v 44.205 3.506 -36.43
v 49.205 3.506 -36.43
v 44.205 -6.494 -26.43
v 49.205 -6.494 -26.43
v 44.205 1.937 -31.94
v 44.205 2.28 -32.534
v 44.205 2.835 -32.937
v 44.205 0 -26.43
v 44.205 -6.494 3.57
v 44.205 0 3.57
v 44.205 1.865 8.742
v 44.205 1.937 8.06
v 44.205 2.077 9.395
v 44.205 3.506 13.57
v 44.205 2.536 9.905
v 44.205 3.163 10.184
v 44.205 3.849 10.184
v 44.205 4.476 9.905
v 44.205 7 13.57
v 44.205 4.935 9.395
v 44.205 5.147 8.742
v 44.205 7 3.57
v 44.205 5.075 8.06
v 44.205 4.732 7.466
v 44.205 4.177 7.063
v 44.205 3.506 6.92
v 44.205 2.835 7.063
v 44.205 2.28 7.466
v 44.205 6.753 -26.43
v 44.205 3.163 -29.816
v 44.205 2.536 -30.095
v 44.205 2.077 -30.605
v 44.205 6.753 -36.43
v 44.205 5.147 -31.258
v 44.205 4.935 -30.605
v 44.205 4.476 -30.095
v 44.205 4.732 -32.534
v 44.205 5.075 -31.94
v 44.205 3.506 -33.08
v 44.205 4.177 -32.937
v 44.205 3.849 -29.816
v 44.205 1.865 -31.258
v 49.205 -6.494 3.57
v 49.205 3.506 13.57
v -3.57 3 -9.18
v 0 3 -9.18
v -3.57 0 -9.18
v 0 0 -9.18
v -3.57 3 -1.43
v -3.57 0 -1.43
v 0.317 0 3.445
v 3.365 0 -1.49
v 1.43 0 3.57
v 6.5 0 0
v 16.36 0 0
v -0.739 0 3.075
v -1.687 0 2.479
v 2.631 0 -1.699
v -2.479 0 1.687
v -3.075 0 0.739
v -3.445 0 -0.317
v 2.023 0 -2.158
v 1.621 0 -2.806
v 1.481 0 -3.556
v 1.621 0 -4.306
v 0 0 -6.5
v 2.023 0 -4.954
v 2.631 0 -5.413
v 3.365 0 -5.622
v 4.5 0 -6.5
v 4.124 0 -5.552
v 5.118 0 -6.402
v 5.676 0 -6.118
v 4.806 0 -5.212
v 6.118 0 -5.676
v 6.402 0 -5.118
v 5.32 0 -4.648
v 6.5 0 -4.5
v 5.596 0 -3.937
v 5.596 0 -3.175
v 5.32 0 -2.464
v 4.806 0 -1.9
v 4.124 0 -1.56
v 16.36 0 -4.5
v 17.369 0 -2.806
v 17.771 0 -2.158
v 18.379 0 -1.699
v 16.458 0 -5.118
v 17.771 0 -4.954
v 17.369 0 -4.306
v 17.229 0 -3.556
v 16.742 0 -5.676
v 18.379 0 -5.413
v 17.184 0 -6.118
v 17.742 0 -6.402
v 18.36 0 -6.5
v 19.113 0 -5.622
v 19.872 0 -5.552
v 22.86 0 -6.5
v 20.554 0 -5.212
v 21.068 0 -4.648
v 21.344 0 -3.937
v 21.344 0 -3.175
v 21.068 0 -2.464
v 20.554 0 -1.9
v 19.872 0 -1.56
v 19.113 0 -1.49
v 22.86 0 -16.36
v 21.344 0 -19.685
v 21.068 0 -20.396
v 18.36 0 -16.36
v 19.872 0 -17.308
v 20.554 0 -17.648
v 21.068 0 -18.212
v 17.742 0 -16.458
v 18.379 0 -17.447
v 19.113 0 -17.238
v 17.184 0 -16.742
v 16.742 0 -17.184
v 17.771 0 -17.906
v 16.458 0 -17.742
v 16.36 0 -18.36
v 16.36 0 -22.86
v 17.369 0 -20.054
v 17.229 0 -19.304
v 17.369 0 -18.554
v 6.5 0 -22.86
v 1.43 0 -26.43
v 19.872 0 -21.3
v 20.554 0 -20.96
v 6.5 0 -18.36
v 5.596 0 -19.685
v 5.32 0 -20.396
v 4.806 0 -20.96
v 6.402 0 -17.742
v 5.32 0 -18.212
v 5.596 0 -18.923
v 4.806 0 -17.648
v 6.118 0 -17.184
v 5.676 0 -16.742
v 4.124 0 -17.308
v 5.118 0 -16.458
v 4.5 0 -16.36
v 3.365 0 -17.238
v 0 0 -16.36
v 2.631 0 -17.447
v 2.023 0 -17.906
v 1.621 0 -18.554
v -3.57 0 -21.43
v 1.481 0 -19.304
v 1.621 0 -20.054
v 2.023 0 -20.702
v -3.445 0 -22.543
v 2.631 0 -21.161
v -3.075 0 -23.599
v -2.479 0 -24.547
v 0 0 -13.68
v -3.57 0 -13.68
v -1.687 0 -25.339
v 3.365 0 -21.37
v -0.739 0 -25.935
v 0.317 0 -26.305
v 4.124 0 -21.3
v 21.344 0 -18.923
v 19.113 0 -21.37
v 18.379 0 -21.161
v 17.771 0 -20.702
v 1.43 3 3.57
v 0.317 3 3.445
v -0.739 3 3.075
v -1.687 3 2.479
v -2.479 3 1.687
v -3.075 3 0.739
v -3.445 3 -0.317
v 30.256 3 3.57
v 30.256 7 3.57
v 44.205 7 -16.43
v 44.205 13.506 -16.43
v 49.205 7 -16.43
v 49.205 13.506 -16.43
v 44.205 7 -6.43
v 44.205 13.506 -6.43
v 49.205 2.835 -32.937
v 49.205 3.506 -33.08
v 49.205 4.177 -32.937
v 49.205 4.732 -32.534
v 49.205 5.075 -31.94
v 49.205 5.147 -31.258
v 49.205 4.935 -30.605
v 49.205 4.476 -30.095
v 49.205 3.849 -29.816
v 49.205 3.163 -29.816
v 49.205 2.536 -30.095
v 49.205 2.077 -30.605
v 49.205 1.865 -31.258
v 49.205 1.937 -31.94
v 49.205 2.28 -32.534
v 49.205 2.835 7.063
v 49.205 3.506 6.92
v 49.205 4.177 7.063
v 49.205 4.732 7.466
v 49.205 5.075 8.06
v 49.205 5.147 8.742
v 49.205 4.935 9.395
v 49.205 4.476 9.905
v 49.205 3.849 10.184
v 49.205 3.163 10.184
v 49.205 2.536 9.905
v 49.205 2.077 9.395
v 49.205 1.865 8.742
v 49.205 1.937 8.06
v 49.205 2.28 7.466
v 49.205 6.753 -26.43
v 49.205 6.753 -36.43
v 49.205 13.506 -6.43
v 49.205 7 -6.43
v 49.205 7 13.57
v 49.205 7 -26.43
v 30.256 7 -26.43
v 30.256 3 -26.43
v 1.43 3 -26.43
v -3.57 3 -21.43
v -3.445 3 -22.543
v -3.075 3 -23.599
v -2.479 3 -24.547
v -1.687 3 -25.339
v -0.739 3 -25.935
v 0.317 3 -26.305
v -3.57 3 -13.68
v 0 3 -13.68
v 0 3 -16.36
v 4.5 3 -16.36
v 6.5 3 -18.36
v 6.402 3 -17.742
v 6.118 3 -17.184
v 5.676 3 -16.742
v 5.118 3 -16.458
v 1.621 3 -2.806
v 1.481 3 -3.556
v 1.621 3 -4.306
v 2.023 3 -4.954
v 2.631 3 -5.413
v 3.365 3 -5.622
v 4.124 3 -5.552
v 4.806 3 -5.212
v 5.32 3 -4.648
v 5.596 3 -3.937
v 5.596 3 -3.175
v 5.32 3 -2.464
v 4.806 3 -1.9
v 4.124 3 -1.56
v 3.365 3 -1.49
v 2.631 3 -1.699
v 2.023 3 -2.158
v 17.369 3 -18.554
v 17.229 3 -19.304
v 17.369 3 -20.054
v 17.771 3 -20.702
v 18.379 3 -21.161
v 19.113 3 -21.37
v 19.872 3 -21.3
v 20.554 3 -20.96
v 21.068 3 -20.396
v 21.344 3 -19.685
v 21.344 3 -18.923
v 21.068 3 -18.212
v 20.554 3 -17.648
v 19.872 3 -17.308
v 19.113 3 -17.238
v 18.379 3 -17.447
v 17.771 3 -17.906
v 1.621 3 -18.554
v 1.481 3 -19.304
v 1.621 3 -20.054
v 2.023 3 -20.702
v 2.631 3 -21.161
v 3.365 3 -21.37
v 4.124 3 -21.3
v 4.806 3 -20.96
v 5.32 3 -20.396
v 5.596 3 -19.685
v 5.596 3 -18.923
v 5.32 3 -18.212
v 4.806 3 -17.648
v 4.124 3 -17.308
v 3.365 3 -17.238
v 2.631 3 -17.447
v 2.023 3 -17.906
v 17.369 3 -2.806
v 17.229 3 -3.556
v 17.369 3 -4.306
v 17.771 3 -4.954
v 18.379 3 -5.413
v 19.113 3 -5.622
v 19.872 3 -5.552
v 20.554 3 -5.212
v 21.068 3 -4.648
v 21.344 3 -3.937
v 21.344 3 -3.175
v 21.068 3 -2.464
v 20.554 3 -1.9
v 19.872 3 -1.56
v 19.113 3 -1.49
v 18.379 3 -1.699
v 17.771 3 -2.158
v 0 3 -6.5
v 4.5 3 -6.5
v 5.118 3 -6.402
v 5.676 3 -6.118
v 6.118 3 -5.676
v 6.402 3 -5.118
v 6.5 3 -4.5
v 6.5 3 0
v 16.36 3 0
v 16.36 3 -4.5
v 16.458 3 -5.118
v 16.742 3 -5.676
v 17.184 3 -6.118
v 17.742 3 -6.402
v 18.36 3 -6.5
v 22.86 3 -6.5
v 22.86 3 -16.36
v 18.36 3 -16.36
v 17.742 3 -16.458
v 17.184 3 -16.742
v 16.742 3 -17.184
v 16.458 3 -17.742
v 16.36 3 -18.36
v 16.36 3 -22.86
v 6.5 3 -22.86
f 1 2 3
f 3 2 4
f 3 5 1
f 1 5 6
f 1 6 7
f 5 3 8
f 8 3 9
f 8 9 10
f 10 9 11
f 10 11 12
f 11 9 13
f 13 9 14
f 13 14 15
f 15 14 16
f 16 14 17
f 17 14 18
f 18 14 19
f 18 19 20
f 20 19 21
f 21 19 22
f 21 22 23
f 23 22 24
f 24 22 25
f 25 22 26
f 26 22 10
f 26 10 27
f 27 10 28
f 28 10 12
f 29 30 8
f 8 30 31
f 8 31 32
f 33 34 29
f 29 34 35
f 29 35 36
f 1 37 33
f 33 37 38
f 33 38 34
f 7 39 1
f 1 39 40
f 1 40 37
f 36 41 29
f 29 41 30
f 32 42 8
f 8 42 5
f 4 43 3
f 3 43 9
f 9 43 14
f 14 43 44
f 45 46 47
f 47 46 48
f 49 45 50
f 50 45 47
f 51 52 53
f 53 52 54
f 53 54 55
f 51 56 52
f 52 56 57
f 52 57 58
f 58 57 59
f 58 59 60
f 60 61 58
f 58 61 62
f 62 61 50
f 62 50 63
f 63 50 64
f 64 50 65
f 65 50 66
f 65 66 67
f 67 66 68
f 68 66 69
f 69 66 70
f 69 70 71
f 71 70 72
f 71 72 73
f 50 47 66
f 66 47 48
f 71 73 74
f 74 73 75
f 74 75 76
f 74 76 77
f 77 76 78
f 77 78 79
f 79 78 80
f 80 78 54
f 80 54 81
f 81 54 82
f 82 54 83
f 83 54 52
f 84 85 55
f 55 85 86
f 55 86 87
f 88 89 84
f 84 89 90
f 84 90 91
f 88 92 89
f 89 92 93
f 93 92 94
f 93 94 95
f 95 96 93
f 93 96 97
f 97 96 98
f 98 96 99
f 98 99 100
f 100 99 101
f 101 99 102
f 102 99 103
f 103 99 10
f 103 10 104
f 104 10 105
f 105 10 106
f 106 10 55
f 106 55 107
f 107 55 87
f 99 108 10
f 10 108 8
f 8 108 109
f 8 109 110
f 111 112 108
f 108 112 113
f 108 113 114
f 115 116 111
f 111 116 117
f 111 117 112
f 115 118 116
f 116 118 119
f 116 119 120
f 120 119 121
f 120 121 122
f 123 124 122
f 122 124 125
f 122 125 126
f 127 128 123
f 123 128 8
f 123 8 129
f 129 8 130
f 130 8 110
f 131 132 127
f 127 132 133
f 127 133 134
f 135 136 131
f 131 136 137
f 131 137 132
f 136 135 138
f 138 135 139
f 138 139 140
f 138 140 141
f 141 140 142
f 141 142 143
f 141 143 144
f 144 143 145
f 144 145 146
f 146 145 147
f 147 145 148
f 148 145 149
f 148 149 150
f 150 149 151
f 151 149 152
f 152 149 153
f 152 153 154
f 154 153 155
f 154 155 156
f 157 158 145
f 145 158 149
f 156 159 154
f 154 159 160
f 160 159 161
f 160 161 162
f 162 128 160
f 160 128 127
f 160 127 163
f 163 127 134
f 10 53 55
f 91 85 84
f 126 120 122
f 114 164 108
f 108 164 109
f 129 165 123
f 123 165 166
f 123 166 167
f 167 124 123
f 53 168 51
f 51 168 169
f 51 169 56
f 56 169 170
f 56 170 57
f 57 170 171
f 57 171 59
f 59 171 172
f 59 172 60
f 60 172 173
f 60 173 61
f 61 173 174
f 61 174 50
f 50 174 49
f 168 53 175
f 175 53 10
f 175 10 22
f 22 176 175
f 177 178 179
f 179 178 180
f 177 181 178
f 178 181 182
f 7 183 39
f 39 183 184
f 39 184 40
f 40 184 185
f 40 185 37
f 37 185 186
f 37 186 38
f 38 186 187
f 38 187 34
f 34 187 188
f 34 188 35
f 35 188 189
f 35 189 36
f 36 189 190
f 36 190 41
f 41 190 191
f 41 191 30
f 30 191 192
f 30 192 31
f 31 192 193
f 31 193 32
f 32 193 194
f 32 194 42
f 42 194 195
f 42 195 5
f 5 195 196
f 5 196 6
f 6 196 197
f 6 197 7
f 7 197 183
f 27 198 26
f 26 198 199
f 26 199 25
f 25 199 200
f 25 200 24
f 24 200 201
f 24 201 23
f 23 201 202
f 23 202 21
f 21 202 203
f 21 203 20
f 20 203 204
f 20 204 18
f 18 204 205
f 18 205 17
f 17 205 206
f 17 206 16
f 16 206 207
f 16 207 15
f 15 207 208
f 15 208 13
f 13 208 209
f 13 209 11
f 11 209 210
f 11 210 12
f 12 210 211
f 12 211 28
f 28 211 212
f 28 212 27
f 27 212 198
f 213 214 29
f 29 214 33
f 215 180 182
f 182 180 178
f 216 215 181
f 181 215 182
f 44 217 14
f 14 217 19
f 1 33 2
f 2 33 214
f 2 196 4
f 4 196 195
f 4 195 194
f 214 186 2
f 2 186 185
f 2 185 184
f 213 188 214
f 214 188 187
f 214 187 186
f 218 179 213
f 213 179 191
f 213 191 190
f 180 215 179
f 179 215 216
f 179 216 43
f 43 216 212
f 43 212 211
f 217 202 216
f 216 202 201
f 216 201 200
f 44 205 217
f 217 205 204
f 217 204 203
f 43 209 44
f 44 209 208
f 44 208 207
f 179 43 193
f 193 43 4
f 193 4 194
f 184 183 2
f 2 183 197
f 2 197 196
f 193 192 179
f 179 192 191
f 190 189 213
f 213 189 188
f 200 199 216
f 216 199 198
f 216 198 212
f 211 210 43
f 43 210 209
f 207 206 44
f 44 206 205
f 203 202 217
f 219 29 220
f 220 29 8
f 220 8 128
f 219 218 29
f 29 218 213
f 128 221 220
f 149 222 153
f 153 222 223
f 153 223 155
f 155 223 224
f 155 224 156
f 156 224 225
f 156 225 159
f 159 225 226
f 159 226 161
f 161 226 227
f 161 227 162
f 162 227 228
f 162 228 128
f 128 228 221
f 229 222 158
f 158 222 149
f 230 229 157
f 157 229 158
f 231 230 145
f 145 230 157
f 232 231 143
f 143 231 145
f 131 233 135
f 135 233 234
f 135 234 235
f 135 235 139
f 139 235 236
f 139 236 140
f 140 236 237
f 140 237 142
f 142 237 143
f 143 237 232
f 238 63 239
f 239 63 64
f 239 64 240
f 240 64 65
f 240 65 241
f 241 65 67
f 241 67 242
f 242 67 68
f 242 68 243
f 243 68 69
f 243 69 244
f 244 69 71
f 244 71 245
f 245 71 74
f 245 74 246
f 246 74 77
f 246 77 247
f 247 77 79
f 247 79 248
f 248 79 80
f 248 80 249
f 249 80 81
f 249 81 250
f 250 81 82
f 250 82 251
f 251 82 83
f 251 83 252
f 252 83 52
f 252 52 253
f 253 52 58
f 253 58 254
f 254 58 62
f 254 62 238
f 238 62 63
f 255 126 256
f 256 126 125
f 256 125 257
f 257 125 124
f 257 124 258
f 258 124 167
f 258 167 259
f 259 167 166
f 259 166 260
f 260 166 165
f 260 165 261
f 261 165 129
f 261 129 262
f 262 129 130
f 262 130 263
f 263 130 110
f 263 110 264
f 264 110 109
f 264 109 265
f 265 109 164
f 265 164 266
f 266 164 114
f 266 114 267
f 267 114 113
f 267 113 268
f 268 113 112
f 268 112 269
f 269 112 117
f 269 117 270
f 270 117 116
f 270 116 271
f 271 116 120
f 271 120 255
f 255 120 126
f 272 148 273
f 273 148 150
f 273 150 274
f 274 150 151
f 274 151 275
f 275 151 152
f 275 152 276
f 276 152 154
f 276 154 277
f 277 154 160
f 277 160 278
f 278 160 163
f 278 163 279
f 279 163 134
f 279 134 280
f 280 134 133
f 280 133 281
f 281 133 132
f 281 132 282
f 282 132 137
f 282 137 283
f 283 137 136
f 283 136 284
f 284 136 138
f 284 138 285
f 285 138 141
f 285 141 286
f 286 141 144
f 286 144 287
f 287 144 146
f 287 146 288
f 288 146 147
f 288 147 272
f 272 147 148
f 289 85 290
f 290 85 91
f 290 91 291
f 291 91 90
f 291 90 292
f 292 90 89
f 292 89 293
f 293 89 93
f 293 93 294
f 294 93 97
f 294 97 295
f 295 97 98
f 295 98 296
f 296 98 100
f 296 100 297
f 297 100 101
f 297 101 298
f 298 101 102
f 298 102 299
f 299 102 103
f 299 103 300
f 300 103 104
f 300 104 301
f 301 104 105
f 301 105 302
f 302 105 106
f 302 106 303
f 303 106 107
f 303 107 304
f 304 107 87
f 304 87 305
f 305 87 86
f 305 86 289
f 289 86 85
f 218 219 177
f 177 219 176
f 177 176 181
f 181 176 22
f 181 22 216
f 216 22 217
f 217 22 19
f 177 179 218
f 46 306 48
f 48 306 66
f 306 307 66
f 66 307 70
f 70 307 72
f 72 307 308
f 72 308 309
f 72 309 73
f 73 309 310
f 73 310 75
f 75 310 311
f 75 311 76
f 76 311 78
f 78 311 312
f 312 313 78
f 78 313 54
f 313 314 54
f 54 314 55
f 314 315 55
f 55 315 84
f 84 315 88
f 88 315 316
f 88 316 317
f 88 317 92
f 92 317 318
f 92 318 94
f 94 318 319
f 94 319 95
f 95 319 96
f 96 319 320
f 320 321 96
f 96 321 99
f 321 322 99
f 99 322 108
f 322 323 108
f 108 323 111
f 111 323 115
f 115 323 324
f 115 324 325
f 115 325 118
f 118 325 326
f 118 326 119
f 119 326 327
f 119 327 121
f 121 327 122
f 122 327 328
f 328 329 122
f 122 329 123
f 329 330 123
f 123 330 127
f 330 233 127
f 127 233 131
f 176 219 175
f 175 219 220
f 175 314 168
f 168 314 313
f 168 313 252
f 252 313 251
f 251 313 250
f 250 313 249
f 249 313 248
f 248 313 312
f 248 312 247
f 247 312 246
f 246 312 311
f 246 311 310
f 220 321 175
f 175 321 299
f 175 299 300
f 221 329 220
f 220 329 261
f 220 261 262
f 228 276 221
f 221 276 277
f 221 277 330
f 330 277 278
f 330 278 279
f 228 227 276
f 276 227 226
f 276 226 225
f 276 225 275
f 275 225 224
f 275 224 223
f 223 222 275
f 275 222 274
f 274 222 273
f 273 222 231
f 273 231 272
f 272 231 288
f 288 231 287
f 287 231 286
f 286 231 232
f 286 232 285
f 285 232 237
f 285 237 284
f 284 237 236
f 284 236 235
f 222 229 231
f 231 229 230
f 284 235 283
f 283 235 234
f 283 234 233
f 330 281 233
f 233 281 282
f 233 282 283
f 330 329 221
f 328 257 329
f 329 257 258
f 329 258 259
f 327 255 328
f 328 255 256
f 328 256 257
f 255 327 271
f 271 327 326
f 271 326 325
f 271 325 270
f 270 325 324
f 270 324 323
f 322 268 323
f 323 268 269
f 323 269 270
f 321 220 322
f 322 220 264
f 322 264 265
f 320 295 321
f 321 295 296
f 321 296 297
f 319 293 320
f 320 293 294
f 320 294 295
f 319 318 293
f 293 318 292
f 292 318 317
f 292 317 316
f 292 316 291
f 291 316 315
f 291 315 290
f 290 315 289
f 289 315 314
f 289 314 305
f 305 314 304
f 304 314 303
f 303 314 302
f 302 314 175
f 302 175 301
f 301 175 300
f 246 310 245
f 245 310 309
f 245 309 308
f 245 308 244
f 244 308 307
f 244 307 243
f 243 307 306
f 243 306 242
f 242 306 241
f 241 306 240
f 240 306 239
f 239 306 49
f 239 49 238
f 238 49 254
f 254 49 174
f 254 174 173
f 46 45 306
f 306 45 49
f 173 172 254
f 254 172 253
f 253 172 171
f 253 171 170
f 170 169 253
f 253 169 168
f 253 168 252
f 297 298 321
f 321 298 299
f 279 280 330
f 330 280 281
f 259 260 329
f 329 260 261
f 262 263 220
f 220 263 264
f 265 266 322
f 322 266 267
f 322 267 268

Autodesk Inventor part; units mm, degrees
ref_plane "YZ Plane" through (0, 0, 0) normal (1, 0, 0) x (0, 1, 0)
ref_plane "XZ Plane" through (0, 0, 0) normal (0, 1, 0) x (-1, 0, 0)
ref_plane "XY Plane" through (0, 0, 0) normal (0, 0, 1) x (1, 0, 0)
sketch "Sketch1" plane through (0, 0, 0) normal (0, 1, 0) x (-1, 0, 0)
  line L0 (0, 0) -> (-22.86, 0)
  line L1 (-22.86, 0) -> (-22.86, -22.86)
  line L2 (-22.86, -22.86) -> (0, -22.86)
  line L3 (0, -22.86) -> (0, 0)
  line L4 (-22.86, -22.86) -> (-19.304, -22.86)
  line L5 (-19.304, -22.86) -> (-19.304, -19.304) construction
  line L6 (-19.304, -19.304) -> (-22.86, -19.304) construction
  line L7 (-22.86, -19.304) -> (-22.86, -22.86)
  line L8 (0, -22.86) -> (-3.556, -22.86)
  line L9 (-3.556, -22.86) -> (-3.556, -19.304) construction
  line L10 (-3.556, -19.304) -> (0, -19.304) construction
  line L11 (0, -19.304) -> (0, -22.86)
  line L12 (0, 0) -> (-3.556, 0)
  line L13 (-3.556, 0) -> (-3.556, -3.556) construction
  line L14 (-3.556, -3.556) -> (0, -3.556) construction
  line L15 (0, -3.556) -> (0, 0)
  line L16 (-22.86, 0) -> (-19.304, 0)
  line L17 (-19.304, 0) -> (-19.304, -3.556) construction
  line L18 (-19.304, -3.556) -> (-22.86, -3.556) construction
  line L19 (-22.86, -3.556) -> (-22.86, 0)
  circle A0 centre (-3.556, -19.304) radius 2.075
  circle A1 centre (-19.304, -19.304) radius 2.075
  circle A2 centre (-19.304, -3.556) radius 2.075
  circle A3 centre (-3.556, -3.556) radius 2.075
  line L20 (3.57, -26.43) -> (-26.43, -26.43)
  line L21 (-26.43, -26.43) -> (-26.43, 3.57)
  line L22 (-26.43, 3.57) -> (3.57, 3.57)
  line L23 (3.57, 3.57) -> (3.57, -26.43)
  line L24 (0, 0) -> (-6.5, 0)
  line L25 (-6.5, 0) -> (-6.5, -6.5)
  line L26 (-6.5, -6.5) -> (0, -6.5)
  line L27 (0, -6.5) -> (0, 0)
  line L28 (0, -22.86) -> (-6.5, -22.86)
  line L29 (-6.5, -22.86) -> (-6.5, -16.36)
  line L30 (-6.5, -16.36) -> (0, -16.36)
  line L31 (0, -16.36) -> (0, -22.86)
  line L32 (-22.86, -22.86) -> (-16.36, -22.86)
  line L33 (-16.36, -22.86) -> (-16.36, -16.36)
  line L34 (-16.36, -16.36) -> (-22.86, -16.36)
  line L35 (-22.86, -16.36) -> (-22.86, -22.86)
  line L36 (-22.86, 0) -> (-16.36, 0)
  line L37 (-16.36, 0) -> (-16.36, -6.5)
  line L38 (-16.36, -6.5) -> (-22.86, -6.5)
  line L39 (-22.86, -6.5) -> (-22.86, 0)
  line L40 (-26.43, 3.57) -> (-49.205, 3.57)
  line L41 (-49.205, 3.57) -> (-49.205, -26.43)
  line L42 (-49.205, -26.43) -> (-26.43, -26.43)
  line L43 (-26.43, -26.43) -> (-26.43, 3.57)
  circle A4 centre (-11.43, -11.43) radius 5
  line L44 (-9.3887, -15.2384) -> (-13.3887, -15.2384)
  line L45 (-13.3887, -15.2384) -> (-13.3887, -23.9816)
  line L46 (-13.3887, -23.9816) -> (-9.3887, -23.9816)
  line L47 (-9.3887, -15.2384) -> (-13.3887, -23.9816) construction
  line L48 (-13.3887, -15.2384) -> (-9.3887, -23.9816) construction
  line L49 (5.2257, -13.68) -> (-9.4126, -13.68)
  line L50 (-9.4126, -13.68) -> (-9.4126, -9.18)
  line L51 (-9.4126, -9.18) -> (5.2257, -9.18)
  line L52 (5.2257, -9.18) -> (5.2257, -13.68)
  line L53 (5.2257, -13.68) -> (-9.4126, -9.18) construction
  line L54 (-9.4126, -13.68) -> (5.2257, -9.18) construction
  point P0 (0, -16.36)
  point P1 (0, -6.5)
  point P2 (-11.3887, -19.61)
  point P3 (-2.0935, -11.43)
  point P4 (0, -9.18)
  point P5 (3.57, -9.18)
  point P6 (3.57, -13.68)
  point P7 (0, -13.68)
  dimension "d2" = 22.86
  dimension "d3" = 22.86
  dimension "d4" = 3.556
  dimension "d5" = 3.556
  dimension "d6" = 3.556
  dimension "d7" = 3.556
  dimension "d8" = 3.556
  dimension "d9" = 3.556
  dimension "d10" = 3.556
  dimension "d11" = 3.556
  dimension "d12" = 4.15
  dimension "d13" = 4.15
  dimension "d14" = 4.15
  dimension "d15" = 4.15
  dimension "d16" = 30
  dimension "d17" = 30
  dimension "d18" = 3.57
  dimension "d19" = 3.57
  dimension "d20" = 6.5
  dimension "d21" = 6.5
  dimension "d22" = 6.5
  dimension "d23" = 6.5
  dimension "d24" = 6.5
  dimension "d25" = 6.5
  dimension "d26" = 6.5
  dimension "d31" = 10
  dimension "d32" = 15
  dimension "d33" = 15
  dimension "d34" = 37.775
  dimension "d69" = 4
  dimension "d70" = 4.5
extrude "Extrusion1" add sketch "Sketch1" along normal blind 7 contours L3 L26 L25 L0 | L0 L1 L2 L3 L49 L23 L20 L21 L22 L51 | L37 L38 L1 L0 | L3 L2 L29 L30 | L34 L33 L2 L1 | L21 L42 L41 L40
fillet "Fillet1" radius 2 4 edges at (6.5, 3.5, -16.36) (16.36, 3.5, -16.36) (16.36, 3.5, -6.5) (6.5, 3.5, -6.5)
sketch "Sketch4" plane through (49.205, 0, 3.57) normal (1, 0, 0) x (0, 0, -1)
  line L0 (-10, 13.5061) -> (40, 13.5061)
  line L1 (40, 13.5061) -> (40, -6.4939)
  line L2 (40, -6.4939) -> (-10, -6.4939)
  line L3 (-10, -6.4939) -> (-10, 13.5061)
  line L4 (-10, 13.5061) -> (40, -6.4939) construction
  line L5 (40, 13.5061) -> (-10, -6.4939) construction
  line L6 (30, 0) -> (30, 7) projected
  line L7 (15, 3.5061) -> (35, 3.5061)
  circle A0 centre (35, 3.5061) radius 1.65
  circle A1 centre (-5, 3.5061) radius 1.65
  line L8 (-10, 0) -> (40, 0)
  line L9 (40, 0) -> (40, 13.5061)
  line L10 (40, 13.5061) -> (-10, 13.5061)
  line L11 (-10, 13.5061) -> (-10, 0)
  line L12 (-10, -6.4939) -> (0, -6.4939)
  line L13 (0, -6.4939) -> (0, 0)
  line L14 (0, 0) -> (-10, 0)
  line L15 (-10, 0) -> (-10, -6.4939)
  line L16 (40, -6.4939) -> (30, -6.4939)
  line L17 (30, -6.4939) -> (30, 0)
  line L18 (30, 0) -> (40, 0)
  line L19 (40, 0) -> (40, -6.4939)
  line L20 (40, 13.5061) -> (20, 13.5061)
  line L21 (20, 13.5061) -> (20, 6.753)
  line L22 (20, 6.753) -> (40, 6.753)
  line L23 (40, 6.753) -> (40, 13.5061)
  line L24 (0, 7) -> (30, 7) projected
  line L25 (-10, 13.5061) -> (10, 13.5061)
  line L26 (10, 13.5061) -> (10, 7)
  line L27 (10, 7) -> (-10, 7)
  line L28 (-10, 7) -> (-10, 13.5061)
  point P0 (3.57, 0)
  point P1 (40, -3.247)
  point P2 (-10, -3.247)
  point P3 (-10, 10.253)
  point P4 (10, 10.253)
  point P5 (40, 10.1296)
  point P6 (20, 13.5061)
  point P7 (10, 13.5061)
  point P8 (-10, 7)
  point P9 (40, 6.753)
  dimension "d46" = 50
  dimension "d47" = 20
  dimension "d48" = 15
  dimension "d49" = 10
  dimension "d56" = 20
  dimension "d57" = 20
  dimension "d58" = 3.3
  dimension "d59" = 3.3
  dimension "d66" = 10
  dimension "d67" = 20
  dimension "d68" = 20
extrude "Extrusion4" add sketch "Sketch4" against normal blind 5 contours L0 L21 L24 L26 | L27 L24 L21 L22 L6 L8 L3 | L8 L13 L2 L3 | L8 L17 L2 L13 | L1 L8 L6 L22 | L8 L1 L2 L17
fillet "Fillet2" radius 5 2 edges at (-3.57, 3.5, -26.43) (-3.57, 3.5, 3.57)
chamfer "Chamfer1" distance 10 angle 45 2 edges at (46.705, -6.4939, 13.57) (46.705, -6.4939, -36.43)
sketch "Sketch5" plane through (0, 7, 0) normal (0, 1, 0) x (1, 0, 0)
  line L0 (-8.8762, -11.5964) -> (30.2556, -11.5964)
  line L1 (30.2556, -11.5964) -> (30.2556, 37.6524)
  line L2 (30.2556, 37.6524) -> (-8.8762, 37.6524)
  line L3 (-8.8762, 37.6524) -> (-8.8762, -11.5964)
  point P0 (0, 0)
extrude "Extrusion5" cut sketch "Sketch5" against normal blind 4
properties part number "as5600mount"
